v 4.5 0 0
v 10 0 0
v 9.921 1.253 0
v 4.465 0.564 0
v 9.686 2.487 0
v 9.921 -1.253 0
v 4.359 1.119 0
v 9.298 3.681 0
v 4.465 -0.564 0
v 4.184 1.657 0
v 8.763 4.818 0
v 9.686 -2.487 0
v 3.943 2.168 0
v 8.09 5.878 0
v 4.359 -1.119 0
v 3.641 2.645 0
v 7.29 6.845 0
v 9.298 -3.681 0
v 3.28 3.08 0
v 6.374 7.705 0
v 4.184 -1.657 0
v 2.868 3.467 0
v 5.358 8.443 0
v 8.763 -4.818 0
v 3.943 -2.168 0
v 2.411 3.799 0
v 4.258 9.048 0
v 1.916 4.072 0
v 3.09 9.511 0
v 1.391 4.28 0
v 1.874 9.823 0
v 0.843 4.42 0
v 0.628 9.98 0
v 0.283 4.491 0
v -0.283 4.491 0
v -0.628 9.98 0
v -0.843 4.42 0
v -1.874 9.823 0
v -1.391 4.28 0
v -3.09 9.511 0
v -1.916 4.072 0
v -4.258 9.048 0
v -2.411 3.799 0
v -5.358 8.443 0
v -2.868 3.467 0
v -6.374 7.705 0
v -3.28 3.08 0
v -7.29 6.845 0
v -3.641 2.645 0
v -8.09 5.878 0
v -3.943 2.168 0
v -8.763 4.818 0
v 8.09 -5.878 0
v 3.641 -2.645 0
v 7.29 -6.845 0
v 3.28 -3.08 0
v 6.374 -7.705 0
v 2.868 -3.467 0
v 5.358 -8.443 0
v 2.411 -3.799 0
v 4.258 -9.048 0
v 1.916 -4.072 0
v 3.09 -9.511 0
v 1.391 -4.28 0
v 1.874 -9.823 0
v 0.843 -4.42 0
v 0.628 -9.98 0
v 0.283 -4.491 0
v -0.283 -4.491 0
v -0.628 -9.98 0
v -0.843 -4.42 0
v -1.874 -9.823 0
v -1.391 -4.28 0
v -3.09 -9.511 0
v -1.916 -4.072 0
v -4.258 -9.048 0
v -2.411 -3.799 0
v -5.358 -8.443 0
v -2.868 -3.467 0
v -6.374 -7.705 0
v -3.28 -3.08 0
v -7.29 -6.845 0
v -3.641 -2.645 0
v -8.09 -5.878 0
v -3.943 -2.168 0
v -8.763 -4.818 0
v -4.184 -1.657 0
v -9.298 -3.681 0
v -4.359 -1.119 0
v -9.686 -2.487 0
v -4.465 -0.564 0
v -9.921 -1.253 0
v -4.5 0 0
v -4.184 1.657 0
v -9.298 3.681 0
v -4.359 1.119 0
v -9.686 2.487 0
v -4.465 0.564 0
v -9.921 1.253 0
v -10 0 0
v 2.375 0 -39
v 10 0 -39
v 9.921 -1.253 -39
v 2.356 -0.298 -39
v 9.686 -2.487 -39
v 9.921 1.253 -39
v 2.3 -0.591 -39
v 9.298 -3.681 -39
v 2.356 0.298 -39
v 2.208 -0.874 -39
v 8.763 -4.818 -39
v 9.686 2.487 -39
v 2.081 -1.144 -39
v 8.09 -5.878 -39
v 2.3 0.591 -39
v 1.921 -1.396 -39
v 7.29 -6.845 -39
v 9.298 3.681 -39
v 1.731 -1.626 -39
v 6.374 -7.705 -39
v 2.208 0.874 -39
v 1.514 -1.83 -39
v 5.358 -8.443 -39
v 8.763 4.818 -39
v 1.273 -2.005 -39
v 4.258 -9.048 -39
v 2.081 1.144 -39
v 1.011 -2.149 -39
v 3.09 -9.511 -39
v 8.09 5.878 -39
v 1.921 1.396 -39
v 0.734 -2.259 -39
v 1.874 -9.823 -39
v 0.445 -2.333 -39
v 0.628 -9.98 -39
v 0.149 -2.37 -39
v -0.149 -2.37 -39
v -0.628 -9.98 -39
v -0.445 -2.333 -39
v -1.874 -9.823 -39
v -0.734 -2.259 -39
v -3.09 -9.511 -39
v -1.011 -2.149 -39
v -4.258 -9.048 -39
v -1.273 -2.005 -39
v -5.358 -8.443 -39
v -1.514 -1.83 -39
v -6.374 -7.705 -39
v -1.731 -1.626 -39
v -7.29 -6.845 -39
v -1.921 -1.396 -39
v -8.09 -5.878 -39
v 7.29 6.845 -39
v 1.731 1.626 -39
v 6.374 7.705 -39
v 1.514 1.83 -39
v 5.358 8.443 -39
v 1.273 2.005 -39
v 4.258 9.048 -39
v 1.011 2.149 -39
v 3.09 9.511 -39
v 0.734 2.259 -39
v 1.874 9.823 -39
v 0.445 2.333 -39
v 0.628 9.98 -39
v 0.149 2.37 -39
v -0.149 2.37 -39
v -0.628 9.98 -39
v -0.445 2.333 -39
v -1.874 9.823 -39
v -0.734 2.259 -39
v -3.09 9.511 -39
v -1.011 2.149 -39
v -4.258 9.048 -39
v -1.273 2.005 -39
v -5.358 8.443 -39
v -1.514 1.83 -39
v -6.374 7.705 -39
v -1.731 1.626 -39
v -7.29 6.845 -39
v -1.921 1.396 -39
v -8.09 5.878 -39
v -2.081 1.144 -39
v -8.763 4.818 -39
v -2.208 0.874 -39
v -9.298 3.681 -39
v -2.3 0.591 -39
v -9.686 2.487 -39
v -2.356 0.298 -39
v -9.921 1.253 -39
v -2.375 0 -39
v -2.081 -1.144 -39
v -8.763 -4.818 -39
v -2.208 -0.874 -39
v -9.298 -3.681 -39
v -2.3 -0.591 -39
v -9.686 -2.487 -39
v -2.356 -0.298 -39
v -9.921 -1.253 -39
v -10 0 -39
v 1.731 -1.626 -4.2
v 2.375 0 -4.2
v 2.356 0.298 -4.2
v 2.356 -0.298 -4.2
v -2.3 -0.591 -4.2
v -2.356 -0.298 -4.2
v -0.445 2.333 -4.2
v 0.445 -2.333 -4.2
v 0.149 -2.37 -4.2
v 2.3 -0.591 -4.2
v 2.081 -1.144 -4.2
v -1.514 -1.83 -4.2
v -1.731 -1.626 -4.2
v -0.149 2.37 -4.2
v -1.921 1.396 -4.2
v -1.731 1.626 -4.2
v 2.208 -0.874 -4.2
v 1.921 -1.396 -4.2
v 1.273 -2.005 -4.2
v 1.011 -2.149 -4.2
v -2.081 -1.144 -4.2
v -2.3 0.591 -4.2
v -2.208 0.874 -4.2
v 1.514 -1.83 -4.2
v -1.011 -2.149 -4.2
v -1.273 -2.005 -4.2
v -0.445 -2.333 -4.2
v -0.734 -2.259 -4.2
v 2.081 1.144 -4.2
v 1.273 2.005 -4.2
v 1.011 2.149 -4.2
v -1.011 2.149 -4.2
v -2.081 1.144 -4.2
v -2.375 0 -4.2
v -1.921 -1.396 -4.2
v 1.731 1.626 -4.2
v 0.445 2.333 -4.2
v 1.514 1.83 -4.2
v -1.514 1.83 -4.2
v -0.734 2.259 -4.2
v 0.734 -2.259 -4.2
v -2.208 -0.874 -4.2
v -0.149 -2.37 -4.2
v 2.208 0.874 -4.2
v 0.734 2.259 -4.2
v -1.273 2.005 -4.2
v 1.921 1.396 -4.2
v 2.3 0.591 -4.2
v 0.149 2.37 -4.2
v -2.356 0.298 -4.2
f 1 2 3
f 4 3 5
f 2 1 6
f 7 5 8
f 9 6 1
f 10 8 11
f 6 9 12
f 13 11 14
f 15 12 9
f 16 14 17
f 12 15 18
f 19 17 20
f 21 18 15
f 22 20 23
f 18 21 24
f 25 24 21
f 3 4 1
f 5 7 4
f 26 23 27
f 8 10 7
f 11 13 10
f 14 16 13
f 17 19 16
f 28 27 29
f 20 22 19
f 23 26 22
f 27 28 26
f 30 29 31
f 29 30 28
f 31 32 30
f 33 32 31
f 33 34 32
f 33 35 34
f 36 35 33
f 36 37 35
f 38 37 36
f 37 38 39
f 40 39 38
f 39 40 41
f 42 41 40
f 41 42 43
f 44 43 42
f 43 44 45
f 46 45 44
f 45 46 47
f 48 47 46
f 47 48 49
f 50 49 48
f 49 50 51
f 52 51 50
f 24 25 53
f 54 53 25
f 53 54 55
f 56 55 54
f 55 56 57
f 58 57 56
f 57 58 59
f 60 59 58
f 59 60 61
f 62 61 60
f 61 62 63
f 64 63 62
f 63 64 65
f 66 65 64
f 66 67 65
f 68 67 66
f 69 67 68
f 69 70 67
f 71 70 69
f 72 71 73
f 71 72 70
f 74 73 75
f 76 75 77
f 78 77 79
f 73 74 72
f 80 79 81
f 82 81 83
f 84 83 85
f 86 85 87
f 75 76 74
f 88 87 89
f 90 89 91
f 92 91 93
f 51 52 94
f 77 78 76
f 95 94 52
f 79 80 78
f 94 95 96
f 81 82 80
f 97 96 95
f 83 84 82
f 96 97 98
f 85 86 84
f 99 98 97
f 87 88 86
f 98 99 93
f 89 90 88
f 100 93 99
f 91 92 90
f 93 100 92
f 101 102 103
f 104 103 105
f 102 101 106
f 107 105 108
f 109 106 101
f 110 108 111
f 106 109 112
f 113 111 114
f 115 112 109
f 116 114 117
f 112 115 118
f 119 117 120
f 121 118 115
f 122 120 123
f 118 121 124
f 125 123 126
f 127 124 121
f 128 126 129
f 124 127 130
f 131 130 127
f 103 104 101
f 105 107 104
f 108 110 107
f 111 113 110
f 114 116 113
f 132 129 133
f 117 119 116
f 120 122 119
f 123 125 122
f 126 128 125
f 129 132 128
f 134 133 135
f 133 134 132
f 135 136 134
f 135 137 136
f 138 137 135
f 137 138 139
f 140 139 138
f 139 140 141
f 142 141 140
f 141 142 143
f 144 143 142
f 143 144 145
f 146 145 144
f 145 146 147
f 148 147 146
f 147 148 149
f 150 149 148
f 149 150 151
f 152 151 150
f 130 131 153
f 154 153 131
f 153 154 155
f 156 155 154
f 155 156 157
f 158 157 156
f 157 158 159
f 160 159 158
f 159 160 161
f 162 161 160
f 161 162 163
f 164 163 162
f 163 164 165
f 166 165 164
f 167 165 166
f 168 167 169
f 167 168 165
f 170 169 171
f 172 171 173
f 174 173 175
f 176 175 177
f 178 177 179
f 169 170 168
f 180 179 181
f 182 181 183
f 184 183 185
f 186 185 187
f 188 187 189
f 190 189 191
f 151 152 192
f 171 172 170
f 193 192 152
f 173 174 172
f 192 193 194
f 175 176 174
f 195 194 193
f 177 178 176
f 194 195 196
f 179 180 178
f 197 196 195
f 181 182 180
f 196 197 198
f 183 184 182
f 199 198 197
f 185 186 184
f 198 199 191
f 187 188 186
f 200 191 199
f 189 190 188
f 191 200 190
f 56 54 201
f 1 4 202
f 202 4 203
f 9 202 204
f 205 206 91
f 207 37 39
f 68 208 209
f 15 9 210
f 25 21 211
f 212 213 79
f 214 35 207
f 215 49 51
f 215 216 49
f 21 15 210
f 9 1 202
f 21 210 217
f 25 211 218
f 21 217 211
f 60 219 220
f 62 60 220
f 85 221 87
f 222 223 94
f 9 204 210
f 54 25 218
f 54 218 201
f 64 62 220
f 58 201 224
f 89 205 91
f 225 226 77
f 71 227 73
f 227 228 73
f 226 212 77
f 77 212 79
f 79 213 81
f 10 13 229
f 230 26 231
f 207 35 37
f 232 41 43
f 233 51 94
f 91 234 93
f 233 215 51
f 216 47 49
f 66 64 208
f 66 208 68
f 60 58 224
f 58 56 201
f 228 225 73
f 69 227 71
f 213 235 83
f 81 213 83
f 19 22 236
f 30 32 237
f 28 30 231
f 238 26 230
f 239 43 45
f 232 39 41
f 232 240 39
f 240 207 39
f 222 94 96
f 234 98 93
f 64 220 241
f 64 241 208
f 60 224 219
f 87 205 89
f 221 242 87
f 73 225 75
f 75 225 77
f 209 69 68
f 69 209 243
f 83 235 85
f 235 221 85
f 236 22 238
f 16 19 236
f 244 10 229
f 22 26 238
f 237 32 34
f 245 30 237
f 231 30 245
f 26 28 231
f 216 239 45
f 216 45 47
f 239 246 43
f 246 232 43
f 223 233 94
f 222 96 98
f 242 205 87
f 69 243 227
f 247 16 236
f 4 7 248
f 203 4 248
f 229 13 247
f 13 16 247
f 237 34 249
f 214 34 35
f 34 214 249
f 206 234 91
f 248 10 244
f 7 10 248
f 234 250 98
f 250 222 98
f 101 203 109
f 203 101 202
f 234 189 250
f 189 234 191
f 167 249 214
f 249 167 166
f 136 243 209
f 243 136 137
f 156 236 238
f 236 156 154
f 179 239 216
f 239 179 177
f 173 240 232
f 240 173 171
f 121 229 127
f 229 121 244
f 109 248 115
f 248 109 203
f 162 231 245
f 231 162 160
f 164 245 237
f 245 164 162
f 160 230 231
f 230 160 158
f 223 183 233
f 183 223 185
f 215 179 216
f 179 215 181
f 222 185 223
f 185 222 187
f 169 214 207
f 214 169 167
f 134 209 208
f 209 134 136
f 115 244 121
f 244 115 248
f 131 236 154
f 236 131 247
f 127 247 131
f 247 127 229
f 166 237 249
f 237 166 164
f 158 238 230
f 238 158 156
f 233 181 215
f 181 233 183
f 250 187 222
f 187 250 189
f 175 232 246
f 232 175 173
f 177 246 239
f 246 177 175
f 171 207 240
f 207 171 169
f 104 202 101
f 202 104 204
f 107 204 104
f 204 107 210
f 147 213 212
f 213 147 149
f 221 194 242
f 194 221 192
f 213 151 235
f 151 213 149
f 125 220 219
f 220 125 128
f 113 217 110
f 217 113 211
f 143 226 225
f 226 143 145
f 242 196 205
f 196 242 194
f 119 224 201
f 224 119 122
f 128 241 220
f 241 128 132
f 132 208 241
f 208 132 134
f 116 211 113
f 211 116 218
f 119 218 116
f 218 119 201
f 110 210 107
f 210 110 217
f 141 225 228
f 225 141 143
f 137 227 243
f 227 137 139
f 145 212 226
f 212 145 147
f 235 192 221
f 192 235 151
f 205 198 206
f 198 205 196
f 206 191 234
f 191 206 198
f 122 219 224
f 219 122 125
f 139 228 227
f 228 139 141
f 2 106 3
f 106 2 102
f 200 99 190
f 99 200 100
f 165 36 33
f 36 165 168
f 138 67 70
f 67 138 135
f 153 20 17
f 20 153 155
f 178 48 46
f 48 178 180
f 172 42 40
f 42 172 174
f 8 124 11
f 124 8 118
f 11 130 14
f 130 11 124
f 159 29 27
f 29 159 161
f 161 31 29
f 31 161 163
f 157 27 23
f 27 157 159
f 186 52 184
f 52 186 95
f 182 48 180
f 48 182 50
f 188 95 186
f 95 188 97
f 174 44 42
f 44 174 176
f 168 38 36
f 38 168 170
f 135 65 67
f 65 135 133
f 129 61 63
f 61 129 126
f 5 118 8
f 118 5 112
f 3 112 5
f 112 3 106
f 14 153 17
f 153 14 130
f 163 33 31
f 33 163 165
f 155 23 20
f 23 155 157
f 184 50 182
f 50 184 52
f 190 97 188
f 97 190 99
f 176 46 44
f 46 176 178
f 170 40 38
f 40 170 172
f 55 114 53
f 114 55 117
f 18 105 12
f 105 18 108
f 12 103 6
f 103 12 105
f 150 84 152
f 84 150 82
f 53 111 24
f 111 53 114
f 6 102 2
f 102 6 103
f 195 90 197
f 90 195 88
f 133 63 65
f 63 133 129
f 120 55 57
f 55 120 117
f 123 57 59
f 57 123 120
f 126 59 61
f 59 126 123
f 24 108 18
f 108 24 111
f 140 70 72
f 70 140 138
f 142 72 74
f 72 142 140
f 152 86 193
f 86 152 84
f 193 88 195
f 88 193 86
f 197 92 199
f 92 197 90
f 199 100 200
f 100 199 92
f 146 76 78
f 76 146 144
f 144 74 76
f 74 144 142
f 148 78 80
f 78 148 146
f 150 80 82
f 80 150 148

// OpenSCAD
$fn = 50;


difference() {
	union() {
		translate(v = [0, 0, -39.0000000000]) {
			cylinder(h = 39, r = 10.0000000000);
		}
		cylinder(h = 0, r = 20.0000000000);
	}
	union() {
		translate(v = [0, 0, 0]) {
			rotate(a = [0, 0, 0]) {
				difference() {
					union() {
						#translate(v = [0, 0, -39.0000000000]) {
							cylinder(h = 39, r = 2.2500000000);
						}
						#translate(v = [0, 0, -4.2000000000]) {
							cylinder(h = 4.2000000000, r = 10.0000000000, r1 = 2.3750000000, r2 = 4.5000000000);
						}
						#translate(v = [0, 0, -39.0000000000]) {
							cylinder(h = 39, r = 2.3750000000);
						}
						#translate(v = [0, 0, -39.0000000000]) {
							cylinder(h = 39, r = 2.2500000000);
						}
					}
					union();
				}
			}
		}
	}
}
